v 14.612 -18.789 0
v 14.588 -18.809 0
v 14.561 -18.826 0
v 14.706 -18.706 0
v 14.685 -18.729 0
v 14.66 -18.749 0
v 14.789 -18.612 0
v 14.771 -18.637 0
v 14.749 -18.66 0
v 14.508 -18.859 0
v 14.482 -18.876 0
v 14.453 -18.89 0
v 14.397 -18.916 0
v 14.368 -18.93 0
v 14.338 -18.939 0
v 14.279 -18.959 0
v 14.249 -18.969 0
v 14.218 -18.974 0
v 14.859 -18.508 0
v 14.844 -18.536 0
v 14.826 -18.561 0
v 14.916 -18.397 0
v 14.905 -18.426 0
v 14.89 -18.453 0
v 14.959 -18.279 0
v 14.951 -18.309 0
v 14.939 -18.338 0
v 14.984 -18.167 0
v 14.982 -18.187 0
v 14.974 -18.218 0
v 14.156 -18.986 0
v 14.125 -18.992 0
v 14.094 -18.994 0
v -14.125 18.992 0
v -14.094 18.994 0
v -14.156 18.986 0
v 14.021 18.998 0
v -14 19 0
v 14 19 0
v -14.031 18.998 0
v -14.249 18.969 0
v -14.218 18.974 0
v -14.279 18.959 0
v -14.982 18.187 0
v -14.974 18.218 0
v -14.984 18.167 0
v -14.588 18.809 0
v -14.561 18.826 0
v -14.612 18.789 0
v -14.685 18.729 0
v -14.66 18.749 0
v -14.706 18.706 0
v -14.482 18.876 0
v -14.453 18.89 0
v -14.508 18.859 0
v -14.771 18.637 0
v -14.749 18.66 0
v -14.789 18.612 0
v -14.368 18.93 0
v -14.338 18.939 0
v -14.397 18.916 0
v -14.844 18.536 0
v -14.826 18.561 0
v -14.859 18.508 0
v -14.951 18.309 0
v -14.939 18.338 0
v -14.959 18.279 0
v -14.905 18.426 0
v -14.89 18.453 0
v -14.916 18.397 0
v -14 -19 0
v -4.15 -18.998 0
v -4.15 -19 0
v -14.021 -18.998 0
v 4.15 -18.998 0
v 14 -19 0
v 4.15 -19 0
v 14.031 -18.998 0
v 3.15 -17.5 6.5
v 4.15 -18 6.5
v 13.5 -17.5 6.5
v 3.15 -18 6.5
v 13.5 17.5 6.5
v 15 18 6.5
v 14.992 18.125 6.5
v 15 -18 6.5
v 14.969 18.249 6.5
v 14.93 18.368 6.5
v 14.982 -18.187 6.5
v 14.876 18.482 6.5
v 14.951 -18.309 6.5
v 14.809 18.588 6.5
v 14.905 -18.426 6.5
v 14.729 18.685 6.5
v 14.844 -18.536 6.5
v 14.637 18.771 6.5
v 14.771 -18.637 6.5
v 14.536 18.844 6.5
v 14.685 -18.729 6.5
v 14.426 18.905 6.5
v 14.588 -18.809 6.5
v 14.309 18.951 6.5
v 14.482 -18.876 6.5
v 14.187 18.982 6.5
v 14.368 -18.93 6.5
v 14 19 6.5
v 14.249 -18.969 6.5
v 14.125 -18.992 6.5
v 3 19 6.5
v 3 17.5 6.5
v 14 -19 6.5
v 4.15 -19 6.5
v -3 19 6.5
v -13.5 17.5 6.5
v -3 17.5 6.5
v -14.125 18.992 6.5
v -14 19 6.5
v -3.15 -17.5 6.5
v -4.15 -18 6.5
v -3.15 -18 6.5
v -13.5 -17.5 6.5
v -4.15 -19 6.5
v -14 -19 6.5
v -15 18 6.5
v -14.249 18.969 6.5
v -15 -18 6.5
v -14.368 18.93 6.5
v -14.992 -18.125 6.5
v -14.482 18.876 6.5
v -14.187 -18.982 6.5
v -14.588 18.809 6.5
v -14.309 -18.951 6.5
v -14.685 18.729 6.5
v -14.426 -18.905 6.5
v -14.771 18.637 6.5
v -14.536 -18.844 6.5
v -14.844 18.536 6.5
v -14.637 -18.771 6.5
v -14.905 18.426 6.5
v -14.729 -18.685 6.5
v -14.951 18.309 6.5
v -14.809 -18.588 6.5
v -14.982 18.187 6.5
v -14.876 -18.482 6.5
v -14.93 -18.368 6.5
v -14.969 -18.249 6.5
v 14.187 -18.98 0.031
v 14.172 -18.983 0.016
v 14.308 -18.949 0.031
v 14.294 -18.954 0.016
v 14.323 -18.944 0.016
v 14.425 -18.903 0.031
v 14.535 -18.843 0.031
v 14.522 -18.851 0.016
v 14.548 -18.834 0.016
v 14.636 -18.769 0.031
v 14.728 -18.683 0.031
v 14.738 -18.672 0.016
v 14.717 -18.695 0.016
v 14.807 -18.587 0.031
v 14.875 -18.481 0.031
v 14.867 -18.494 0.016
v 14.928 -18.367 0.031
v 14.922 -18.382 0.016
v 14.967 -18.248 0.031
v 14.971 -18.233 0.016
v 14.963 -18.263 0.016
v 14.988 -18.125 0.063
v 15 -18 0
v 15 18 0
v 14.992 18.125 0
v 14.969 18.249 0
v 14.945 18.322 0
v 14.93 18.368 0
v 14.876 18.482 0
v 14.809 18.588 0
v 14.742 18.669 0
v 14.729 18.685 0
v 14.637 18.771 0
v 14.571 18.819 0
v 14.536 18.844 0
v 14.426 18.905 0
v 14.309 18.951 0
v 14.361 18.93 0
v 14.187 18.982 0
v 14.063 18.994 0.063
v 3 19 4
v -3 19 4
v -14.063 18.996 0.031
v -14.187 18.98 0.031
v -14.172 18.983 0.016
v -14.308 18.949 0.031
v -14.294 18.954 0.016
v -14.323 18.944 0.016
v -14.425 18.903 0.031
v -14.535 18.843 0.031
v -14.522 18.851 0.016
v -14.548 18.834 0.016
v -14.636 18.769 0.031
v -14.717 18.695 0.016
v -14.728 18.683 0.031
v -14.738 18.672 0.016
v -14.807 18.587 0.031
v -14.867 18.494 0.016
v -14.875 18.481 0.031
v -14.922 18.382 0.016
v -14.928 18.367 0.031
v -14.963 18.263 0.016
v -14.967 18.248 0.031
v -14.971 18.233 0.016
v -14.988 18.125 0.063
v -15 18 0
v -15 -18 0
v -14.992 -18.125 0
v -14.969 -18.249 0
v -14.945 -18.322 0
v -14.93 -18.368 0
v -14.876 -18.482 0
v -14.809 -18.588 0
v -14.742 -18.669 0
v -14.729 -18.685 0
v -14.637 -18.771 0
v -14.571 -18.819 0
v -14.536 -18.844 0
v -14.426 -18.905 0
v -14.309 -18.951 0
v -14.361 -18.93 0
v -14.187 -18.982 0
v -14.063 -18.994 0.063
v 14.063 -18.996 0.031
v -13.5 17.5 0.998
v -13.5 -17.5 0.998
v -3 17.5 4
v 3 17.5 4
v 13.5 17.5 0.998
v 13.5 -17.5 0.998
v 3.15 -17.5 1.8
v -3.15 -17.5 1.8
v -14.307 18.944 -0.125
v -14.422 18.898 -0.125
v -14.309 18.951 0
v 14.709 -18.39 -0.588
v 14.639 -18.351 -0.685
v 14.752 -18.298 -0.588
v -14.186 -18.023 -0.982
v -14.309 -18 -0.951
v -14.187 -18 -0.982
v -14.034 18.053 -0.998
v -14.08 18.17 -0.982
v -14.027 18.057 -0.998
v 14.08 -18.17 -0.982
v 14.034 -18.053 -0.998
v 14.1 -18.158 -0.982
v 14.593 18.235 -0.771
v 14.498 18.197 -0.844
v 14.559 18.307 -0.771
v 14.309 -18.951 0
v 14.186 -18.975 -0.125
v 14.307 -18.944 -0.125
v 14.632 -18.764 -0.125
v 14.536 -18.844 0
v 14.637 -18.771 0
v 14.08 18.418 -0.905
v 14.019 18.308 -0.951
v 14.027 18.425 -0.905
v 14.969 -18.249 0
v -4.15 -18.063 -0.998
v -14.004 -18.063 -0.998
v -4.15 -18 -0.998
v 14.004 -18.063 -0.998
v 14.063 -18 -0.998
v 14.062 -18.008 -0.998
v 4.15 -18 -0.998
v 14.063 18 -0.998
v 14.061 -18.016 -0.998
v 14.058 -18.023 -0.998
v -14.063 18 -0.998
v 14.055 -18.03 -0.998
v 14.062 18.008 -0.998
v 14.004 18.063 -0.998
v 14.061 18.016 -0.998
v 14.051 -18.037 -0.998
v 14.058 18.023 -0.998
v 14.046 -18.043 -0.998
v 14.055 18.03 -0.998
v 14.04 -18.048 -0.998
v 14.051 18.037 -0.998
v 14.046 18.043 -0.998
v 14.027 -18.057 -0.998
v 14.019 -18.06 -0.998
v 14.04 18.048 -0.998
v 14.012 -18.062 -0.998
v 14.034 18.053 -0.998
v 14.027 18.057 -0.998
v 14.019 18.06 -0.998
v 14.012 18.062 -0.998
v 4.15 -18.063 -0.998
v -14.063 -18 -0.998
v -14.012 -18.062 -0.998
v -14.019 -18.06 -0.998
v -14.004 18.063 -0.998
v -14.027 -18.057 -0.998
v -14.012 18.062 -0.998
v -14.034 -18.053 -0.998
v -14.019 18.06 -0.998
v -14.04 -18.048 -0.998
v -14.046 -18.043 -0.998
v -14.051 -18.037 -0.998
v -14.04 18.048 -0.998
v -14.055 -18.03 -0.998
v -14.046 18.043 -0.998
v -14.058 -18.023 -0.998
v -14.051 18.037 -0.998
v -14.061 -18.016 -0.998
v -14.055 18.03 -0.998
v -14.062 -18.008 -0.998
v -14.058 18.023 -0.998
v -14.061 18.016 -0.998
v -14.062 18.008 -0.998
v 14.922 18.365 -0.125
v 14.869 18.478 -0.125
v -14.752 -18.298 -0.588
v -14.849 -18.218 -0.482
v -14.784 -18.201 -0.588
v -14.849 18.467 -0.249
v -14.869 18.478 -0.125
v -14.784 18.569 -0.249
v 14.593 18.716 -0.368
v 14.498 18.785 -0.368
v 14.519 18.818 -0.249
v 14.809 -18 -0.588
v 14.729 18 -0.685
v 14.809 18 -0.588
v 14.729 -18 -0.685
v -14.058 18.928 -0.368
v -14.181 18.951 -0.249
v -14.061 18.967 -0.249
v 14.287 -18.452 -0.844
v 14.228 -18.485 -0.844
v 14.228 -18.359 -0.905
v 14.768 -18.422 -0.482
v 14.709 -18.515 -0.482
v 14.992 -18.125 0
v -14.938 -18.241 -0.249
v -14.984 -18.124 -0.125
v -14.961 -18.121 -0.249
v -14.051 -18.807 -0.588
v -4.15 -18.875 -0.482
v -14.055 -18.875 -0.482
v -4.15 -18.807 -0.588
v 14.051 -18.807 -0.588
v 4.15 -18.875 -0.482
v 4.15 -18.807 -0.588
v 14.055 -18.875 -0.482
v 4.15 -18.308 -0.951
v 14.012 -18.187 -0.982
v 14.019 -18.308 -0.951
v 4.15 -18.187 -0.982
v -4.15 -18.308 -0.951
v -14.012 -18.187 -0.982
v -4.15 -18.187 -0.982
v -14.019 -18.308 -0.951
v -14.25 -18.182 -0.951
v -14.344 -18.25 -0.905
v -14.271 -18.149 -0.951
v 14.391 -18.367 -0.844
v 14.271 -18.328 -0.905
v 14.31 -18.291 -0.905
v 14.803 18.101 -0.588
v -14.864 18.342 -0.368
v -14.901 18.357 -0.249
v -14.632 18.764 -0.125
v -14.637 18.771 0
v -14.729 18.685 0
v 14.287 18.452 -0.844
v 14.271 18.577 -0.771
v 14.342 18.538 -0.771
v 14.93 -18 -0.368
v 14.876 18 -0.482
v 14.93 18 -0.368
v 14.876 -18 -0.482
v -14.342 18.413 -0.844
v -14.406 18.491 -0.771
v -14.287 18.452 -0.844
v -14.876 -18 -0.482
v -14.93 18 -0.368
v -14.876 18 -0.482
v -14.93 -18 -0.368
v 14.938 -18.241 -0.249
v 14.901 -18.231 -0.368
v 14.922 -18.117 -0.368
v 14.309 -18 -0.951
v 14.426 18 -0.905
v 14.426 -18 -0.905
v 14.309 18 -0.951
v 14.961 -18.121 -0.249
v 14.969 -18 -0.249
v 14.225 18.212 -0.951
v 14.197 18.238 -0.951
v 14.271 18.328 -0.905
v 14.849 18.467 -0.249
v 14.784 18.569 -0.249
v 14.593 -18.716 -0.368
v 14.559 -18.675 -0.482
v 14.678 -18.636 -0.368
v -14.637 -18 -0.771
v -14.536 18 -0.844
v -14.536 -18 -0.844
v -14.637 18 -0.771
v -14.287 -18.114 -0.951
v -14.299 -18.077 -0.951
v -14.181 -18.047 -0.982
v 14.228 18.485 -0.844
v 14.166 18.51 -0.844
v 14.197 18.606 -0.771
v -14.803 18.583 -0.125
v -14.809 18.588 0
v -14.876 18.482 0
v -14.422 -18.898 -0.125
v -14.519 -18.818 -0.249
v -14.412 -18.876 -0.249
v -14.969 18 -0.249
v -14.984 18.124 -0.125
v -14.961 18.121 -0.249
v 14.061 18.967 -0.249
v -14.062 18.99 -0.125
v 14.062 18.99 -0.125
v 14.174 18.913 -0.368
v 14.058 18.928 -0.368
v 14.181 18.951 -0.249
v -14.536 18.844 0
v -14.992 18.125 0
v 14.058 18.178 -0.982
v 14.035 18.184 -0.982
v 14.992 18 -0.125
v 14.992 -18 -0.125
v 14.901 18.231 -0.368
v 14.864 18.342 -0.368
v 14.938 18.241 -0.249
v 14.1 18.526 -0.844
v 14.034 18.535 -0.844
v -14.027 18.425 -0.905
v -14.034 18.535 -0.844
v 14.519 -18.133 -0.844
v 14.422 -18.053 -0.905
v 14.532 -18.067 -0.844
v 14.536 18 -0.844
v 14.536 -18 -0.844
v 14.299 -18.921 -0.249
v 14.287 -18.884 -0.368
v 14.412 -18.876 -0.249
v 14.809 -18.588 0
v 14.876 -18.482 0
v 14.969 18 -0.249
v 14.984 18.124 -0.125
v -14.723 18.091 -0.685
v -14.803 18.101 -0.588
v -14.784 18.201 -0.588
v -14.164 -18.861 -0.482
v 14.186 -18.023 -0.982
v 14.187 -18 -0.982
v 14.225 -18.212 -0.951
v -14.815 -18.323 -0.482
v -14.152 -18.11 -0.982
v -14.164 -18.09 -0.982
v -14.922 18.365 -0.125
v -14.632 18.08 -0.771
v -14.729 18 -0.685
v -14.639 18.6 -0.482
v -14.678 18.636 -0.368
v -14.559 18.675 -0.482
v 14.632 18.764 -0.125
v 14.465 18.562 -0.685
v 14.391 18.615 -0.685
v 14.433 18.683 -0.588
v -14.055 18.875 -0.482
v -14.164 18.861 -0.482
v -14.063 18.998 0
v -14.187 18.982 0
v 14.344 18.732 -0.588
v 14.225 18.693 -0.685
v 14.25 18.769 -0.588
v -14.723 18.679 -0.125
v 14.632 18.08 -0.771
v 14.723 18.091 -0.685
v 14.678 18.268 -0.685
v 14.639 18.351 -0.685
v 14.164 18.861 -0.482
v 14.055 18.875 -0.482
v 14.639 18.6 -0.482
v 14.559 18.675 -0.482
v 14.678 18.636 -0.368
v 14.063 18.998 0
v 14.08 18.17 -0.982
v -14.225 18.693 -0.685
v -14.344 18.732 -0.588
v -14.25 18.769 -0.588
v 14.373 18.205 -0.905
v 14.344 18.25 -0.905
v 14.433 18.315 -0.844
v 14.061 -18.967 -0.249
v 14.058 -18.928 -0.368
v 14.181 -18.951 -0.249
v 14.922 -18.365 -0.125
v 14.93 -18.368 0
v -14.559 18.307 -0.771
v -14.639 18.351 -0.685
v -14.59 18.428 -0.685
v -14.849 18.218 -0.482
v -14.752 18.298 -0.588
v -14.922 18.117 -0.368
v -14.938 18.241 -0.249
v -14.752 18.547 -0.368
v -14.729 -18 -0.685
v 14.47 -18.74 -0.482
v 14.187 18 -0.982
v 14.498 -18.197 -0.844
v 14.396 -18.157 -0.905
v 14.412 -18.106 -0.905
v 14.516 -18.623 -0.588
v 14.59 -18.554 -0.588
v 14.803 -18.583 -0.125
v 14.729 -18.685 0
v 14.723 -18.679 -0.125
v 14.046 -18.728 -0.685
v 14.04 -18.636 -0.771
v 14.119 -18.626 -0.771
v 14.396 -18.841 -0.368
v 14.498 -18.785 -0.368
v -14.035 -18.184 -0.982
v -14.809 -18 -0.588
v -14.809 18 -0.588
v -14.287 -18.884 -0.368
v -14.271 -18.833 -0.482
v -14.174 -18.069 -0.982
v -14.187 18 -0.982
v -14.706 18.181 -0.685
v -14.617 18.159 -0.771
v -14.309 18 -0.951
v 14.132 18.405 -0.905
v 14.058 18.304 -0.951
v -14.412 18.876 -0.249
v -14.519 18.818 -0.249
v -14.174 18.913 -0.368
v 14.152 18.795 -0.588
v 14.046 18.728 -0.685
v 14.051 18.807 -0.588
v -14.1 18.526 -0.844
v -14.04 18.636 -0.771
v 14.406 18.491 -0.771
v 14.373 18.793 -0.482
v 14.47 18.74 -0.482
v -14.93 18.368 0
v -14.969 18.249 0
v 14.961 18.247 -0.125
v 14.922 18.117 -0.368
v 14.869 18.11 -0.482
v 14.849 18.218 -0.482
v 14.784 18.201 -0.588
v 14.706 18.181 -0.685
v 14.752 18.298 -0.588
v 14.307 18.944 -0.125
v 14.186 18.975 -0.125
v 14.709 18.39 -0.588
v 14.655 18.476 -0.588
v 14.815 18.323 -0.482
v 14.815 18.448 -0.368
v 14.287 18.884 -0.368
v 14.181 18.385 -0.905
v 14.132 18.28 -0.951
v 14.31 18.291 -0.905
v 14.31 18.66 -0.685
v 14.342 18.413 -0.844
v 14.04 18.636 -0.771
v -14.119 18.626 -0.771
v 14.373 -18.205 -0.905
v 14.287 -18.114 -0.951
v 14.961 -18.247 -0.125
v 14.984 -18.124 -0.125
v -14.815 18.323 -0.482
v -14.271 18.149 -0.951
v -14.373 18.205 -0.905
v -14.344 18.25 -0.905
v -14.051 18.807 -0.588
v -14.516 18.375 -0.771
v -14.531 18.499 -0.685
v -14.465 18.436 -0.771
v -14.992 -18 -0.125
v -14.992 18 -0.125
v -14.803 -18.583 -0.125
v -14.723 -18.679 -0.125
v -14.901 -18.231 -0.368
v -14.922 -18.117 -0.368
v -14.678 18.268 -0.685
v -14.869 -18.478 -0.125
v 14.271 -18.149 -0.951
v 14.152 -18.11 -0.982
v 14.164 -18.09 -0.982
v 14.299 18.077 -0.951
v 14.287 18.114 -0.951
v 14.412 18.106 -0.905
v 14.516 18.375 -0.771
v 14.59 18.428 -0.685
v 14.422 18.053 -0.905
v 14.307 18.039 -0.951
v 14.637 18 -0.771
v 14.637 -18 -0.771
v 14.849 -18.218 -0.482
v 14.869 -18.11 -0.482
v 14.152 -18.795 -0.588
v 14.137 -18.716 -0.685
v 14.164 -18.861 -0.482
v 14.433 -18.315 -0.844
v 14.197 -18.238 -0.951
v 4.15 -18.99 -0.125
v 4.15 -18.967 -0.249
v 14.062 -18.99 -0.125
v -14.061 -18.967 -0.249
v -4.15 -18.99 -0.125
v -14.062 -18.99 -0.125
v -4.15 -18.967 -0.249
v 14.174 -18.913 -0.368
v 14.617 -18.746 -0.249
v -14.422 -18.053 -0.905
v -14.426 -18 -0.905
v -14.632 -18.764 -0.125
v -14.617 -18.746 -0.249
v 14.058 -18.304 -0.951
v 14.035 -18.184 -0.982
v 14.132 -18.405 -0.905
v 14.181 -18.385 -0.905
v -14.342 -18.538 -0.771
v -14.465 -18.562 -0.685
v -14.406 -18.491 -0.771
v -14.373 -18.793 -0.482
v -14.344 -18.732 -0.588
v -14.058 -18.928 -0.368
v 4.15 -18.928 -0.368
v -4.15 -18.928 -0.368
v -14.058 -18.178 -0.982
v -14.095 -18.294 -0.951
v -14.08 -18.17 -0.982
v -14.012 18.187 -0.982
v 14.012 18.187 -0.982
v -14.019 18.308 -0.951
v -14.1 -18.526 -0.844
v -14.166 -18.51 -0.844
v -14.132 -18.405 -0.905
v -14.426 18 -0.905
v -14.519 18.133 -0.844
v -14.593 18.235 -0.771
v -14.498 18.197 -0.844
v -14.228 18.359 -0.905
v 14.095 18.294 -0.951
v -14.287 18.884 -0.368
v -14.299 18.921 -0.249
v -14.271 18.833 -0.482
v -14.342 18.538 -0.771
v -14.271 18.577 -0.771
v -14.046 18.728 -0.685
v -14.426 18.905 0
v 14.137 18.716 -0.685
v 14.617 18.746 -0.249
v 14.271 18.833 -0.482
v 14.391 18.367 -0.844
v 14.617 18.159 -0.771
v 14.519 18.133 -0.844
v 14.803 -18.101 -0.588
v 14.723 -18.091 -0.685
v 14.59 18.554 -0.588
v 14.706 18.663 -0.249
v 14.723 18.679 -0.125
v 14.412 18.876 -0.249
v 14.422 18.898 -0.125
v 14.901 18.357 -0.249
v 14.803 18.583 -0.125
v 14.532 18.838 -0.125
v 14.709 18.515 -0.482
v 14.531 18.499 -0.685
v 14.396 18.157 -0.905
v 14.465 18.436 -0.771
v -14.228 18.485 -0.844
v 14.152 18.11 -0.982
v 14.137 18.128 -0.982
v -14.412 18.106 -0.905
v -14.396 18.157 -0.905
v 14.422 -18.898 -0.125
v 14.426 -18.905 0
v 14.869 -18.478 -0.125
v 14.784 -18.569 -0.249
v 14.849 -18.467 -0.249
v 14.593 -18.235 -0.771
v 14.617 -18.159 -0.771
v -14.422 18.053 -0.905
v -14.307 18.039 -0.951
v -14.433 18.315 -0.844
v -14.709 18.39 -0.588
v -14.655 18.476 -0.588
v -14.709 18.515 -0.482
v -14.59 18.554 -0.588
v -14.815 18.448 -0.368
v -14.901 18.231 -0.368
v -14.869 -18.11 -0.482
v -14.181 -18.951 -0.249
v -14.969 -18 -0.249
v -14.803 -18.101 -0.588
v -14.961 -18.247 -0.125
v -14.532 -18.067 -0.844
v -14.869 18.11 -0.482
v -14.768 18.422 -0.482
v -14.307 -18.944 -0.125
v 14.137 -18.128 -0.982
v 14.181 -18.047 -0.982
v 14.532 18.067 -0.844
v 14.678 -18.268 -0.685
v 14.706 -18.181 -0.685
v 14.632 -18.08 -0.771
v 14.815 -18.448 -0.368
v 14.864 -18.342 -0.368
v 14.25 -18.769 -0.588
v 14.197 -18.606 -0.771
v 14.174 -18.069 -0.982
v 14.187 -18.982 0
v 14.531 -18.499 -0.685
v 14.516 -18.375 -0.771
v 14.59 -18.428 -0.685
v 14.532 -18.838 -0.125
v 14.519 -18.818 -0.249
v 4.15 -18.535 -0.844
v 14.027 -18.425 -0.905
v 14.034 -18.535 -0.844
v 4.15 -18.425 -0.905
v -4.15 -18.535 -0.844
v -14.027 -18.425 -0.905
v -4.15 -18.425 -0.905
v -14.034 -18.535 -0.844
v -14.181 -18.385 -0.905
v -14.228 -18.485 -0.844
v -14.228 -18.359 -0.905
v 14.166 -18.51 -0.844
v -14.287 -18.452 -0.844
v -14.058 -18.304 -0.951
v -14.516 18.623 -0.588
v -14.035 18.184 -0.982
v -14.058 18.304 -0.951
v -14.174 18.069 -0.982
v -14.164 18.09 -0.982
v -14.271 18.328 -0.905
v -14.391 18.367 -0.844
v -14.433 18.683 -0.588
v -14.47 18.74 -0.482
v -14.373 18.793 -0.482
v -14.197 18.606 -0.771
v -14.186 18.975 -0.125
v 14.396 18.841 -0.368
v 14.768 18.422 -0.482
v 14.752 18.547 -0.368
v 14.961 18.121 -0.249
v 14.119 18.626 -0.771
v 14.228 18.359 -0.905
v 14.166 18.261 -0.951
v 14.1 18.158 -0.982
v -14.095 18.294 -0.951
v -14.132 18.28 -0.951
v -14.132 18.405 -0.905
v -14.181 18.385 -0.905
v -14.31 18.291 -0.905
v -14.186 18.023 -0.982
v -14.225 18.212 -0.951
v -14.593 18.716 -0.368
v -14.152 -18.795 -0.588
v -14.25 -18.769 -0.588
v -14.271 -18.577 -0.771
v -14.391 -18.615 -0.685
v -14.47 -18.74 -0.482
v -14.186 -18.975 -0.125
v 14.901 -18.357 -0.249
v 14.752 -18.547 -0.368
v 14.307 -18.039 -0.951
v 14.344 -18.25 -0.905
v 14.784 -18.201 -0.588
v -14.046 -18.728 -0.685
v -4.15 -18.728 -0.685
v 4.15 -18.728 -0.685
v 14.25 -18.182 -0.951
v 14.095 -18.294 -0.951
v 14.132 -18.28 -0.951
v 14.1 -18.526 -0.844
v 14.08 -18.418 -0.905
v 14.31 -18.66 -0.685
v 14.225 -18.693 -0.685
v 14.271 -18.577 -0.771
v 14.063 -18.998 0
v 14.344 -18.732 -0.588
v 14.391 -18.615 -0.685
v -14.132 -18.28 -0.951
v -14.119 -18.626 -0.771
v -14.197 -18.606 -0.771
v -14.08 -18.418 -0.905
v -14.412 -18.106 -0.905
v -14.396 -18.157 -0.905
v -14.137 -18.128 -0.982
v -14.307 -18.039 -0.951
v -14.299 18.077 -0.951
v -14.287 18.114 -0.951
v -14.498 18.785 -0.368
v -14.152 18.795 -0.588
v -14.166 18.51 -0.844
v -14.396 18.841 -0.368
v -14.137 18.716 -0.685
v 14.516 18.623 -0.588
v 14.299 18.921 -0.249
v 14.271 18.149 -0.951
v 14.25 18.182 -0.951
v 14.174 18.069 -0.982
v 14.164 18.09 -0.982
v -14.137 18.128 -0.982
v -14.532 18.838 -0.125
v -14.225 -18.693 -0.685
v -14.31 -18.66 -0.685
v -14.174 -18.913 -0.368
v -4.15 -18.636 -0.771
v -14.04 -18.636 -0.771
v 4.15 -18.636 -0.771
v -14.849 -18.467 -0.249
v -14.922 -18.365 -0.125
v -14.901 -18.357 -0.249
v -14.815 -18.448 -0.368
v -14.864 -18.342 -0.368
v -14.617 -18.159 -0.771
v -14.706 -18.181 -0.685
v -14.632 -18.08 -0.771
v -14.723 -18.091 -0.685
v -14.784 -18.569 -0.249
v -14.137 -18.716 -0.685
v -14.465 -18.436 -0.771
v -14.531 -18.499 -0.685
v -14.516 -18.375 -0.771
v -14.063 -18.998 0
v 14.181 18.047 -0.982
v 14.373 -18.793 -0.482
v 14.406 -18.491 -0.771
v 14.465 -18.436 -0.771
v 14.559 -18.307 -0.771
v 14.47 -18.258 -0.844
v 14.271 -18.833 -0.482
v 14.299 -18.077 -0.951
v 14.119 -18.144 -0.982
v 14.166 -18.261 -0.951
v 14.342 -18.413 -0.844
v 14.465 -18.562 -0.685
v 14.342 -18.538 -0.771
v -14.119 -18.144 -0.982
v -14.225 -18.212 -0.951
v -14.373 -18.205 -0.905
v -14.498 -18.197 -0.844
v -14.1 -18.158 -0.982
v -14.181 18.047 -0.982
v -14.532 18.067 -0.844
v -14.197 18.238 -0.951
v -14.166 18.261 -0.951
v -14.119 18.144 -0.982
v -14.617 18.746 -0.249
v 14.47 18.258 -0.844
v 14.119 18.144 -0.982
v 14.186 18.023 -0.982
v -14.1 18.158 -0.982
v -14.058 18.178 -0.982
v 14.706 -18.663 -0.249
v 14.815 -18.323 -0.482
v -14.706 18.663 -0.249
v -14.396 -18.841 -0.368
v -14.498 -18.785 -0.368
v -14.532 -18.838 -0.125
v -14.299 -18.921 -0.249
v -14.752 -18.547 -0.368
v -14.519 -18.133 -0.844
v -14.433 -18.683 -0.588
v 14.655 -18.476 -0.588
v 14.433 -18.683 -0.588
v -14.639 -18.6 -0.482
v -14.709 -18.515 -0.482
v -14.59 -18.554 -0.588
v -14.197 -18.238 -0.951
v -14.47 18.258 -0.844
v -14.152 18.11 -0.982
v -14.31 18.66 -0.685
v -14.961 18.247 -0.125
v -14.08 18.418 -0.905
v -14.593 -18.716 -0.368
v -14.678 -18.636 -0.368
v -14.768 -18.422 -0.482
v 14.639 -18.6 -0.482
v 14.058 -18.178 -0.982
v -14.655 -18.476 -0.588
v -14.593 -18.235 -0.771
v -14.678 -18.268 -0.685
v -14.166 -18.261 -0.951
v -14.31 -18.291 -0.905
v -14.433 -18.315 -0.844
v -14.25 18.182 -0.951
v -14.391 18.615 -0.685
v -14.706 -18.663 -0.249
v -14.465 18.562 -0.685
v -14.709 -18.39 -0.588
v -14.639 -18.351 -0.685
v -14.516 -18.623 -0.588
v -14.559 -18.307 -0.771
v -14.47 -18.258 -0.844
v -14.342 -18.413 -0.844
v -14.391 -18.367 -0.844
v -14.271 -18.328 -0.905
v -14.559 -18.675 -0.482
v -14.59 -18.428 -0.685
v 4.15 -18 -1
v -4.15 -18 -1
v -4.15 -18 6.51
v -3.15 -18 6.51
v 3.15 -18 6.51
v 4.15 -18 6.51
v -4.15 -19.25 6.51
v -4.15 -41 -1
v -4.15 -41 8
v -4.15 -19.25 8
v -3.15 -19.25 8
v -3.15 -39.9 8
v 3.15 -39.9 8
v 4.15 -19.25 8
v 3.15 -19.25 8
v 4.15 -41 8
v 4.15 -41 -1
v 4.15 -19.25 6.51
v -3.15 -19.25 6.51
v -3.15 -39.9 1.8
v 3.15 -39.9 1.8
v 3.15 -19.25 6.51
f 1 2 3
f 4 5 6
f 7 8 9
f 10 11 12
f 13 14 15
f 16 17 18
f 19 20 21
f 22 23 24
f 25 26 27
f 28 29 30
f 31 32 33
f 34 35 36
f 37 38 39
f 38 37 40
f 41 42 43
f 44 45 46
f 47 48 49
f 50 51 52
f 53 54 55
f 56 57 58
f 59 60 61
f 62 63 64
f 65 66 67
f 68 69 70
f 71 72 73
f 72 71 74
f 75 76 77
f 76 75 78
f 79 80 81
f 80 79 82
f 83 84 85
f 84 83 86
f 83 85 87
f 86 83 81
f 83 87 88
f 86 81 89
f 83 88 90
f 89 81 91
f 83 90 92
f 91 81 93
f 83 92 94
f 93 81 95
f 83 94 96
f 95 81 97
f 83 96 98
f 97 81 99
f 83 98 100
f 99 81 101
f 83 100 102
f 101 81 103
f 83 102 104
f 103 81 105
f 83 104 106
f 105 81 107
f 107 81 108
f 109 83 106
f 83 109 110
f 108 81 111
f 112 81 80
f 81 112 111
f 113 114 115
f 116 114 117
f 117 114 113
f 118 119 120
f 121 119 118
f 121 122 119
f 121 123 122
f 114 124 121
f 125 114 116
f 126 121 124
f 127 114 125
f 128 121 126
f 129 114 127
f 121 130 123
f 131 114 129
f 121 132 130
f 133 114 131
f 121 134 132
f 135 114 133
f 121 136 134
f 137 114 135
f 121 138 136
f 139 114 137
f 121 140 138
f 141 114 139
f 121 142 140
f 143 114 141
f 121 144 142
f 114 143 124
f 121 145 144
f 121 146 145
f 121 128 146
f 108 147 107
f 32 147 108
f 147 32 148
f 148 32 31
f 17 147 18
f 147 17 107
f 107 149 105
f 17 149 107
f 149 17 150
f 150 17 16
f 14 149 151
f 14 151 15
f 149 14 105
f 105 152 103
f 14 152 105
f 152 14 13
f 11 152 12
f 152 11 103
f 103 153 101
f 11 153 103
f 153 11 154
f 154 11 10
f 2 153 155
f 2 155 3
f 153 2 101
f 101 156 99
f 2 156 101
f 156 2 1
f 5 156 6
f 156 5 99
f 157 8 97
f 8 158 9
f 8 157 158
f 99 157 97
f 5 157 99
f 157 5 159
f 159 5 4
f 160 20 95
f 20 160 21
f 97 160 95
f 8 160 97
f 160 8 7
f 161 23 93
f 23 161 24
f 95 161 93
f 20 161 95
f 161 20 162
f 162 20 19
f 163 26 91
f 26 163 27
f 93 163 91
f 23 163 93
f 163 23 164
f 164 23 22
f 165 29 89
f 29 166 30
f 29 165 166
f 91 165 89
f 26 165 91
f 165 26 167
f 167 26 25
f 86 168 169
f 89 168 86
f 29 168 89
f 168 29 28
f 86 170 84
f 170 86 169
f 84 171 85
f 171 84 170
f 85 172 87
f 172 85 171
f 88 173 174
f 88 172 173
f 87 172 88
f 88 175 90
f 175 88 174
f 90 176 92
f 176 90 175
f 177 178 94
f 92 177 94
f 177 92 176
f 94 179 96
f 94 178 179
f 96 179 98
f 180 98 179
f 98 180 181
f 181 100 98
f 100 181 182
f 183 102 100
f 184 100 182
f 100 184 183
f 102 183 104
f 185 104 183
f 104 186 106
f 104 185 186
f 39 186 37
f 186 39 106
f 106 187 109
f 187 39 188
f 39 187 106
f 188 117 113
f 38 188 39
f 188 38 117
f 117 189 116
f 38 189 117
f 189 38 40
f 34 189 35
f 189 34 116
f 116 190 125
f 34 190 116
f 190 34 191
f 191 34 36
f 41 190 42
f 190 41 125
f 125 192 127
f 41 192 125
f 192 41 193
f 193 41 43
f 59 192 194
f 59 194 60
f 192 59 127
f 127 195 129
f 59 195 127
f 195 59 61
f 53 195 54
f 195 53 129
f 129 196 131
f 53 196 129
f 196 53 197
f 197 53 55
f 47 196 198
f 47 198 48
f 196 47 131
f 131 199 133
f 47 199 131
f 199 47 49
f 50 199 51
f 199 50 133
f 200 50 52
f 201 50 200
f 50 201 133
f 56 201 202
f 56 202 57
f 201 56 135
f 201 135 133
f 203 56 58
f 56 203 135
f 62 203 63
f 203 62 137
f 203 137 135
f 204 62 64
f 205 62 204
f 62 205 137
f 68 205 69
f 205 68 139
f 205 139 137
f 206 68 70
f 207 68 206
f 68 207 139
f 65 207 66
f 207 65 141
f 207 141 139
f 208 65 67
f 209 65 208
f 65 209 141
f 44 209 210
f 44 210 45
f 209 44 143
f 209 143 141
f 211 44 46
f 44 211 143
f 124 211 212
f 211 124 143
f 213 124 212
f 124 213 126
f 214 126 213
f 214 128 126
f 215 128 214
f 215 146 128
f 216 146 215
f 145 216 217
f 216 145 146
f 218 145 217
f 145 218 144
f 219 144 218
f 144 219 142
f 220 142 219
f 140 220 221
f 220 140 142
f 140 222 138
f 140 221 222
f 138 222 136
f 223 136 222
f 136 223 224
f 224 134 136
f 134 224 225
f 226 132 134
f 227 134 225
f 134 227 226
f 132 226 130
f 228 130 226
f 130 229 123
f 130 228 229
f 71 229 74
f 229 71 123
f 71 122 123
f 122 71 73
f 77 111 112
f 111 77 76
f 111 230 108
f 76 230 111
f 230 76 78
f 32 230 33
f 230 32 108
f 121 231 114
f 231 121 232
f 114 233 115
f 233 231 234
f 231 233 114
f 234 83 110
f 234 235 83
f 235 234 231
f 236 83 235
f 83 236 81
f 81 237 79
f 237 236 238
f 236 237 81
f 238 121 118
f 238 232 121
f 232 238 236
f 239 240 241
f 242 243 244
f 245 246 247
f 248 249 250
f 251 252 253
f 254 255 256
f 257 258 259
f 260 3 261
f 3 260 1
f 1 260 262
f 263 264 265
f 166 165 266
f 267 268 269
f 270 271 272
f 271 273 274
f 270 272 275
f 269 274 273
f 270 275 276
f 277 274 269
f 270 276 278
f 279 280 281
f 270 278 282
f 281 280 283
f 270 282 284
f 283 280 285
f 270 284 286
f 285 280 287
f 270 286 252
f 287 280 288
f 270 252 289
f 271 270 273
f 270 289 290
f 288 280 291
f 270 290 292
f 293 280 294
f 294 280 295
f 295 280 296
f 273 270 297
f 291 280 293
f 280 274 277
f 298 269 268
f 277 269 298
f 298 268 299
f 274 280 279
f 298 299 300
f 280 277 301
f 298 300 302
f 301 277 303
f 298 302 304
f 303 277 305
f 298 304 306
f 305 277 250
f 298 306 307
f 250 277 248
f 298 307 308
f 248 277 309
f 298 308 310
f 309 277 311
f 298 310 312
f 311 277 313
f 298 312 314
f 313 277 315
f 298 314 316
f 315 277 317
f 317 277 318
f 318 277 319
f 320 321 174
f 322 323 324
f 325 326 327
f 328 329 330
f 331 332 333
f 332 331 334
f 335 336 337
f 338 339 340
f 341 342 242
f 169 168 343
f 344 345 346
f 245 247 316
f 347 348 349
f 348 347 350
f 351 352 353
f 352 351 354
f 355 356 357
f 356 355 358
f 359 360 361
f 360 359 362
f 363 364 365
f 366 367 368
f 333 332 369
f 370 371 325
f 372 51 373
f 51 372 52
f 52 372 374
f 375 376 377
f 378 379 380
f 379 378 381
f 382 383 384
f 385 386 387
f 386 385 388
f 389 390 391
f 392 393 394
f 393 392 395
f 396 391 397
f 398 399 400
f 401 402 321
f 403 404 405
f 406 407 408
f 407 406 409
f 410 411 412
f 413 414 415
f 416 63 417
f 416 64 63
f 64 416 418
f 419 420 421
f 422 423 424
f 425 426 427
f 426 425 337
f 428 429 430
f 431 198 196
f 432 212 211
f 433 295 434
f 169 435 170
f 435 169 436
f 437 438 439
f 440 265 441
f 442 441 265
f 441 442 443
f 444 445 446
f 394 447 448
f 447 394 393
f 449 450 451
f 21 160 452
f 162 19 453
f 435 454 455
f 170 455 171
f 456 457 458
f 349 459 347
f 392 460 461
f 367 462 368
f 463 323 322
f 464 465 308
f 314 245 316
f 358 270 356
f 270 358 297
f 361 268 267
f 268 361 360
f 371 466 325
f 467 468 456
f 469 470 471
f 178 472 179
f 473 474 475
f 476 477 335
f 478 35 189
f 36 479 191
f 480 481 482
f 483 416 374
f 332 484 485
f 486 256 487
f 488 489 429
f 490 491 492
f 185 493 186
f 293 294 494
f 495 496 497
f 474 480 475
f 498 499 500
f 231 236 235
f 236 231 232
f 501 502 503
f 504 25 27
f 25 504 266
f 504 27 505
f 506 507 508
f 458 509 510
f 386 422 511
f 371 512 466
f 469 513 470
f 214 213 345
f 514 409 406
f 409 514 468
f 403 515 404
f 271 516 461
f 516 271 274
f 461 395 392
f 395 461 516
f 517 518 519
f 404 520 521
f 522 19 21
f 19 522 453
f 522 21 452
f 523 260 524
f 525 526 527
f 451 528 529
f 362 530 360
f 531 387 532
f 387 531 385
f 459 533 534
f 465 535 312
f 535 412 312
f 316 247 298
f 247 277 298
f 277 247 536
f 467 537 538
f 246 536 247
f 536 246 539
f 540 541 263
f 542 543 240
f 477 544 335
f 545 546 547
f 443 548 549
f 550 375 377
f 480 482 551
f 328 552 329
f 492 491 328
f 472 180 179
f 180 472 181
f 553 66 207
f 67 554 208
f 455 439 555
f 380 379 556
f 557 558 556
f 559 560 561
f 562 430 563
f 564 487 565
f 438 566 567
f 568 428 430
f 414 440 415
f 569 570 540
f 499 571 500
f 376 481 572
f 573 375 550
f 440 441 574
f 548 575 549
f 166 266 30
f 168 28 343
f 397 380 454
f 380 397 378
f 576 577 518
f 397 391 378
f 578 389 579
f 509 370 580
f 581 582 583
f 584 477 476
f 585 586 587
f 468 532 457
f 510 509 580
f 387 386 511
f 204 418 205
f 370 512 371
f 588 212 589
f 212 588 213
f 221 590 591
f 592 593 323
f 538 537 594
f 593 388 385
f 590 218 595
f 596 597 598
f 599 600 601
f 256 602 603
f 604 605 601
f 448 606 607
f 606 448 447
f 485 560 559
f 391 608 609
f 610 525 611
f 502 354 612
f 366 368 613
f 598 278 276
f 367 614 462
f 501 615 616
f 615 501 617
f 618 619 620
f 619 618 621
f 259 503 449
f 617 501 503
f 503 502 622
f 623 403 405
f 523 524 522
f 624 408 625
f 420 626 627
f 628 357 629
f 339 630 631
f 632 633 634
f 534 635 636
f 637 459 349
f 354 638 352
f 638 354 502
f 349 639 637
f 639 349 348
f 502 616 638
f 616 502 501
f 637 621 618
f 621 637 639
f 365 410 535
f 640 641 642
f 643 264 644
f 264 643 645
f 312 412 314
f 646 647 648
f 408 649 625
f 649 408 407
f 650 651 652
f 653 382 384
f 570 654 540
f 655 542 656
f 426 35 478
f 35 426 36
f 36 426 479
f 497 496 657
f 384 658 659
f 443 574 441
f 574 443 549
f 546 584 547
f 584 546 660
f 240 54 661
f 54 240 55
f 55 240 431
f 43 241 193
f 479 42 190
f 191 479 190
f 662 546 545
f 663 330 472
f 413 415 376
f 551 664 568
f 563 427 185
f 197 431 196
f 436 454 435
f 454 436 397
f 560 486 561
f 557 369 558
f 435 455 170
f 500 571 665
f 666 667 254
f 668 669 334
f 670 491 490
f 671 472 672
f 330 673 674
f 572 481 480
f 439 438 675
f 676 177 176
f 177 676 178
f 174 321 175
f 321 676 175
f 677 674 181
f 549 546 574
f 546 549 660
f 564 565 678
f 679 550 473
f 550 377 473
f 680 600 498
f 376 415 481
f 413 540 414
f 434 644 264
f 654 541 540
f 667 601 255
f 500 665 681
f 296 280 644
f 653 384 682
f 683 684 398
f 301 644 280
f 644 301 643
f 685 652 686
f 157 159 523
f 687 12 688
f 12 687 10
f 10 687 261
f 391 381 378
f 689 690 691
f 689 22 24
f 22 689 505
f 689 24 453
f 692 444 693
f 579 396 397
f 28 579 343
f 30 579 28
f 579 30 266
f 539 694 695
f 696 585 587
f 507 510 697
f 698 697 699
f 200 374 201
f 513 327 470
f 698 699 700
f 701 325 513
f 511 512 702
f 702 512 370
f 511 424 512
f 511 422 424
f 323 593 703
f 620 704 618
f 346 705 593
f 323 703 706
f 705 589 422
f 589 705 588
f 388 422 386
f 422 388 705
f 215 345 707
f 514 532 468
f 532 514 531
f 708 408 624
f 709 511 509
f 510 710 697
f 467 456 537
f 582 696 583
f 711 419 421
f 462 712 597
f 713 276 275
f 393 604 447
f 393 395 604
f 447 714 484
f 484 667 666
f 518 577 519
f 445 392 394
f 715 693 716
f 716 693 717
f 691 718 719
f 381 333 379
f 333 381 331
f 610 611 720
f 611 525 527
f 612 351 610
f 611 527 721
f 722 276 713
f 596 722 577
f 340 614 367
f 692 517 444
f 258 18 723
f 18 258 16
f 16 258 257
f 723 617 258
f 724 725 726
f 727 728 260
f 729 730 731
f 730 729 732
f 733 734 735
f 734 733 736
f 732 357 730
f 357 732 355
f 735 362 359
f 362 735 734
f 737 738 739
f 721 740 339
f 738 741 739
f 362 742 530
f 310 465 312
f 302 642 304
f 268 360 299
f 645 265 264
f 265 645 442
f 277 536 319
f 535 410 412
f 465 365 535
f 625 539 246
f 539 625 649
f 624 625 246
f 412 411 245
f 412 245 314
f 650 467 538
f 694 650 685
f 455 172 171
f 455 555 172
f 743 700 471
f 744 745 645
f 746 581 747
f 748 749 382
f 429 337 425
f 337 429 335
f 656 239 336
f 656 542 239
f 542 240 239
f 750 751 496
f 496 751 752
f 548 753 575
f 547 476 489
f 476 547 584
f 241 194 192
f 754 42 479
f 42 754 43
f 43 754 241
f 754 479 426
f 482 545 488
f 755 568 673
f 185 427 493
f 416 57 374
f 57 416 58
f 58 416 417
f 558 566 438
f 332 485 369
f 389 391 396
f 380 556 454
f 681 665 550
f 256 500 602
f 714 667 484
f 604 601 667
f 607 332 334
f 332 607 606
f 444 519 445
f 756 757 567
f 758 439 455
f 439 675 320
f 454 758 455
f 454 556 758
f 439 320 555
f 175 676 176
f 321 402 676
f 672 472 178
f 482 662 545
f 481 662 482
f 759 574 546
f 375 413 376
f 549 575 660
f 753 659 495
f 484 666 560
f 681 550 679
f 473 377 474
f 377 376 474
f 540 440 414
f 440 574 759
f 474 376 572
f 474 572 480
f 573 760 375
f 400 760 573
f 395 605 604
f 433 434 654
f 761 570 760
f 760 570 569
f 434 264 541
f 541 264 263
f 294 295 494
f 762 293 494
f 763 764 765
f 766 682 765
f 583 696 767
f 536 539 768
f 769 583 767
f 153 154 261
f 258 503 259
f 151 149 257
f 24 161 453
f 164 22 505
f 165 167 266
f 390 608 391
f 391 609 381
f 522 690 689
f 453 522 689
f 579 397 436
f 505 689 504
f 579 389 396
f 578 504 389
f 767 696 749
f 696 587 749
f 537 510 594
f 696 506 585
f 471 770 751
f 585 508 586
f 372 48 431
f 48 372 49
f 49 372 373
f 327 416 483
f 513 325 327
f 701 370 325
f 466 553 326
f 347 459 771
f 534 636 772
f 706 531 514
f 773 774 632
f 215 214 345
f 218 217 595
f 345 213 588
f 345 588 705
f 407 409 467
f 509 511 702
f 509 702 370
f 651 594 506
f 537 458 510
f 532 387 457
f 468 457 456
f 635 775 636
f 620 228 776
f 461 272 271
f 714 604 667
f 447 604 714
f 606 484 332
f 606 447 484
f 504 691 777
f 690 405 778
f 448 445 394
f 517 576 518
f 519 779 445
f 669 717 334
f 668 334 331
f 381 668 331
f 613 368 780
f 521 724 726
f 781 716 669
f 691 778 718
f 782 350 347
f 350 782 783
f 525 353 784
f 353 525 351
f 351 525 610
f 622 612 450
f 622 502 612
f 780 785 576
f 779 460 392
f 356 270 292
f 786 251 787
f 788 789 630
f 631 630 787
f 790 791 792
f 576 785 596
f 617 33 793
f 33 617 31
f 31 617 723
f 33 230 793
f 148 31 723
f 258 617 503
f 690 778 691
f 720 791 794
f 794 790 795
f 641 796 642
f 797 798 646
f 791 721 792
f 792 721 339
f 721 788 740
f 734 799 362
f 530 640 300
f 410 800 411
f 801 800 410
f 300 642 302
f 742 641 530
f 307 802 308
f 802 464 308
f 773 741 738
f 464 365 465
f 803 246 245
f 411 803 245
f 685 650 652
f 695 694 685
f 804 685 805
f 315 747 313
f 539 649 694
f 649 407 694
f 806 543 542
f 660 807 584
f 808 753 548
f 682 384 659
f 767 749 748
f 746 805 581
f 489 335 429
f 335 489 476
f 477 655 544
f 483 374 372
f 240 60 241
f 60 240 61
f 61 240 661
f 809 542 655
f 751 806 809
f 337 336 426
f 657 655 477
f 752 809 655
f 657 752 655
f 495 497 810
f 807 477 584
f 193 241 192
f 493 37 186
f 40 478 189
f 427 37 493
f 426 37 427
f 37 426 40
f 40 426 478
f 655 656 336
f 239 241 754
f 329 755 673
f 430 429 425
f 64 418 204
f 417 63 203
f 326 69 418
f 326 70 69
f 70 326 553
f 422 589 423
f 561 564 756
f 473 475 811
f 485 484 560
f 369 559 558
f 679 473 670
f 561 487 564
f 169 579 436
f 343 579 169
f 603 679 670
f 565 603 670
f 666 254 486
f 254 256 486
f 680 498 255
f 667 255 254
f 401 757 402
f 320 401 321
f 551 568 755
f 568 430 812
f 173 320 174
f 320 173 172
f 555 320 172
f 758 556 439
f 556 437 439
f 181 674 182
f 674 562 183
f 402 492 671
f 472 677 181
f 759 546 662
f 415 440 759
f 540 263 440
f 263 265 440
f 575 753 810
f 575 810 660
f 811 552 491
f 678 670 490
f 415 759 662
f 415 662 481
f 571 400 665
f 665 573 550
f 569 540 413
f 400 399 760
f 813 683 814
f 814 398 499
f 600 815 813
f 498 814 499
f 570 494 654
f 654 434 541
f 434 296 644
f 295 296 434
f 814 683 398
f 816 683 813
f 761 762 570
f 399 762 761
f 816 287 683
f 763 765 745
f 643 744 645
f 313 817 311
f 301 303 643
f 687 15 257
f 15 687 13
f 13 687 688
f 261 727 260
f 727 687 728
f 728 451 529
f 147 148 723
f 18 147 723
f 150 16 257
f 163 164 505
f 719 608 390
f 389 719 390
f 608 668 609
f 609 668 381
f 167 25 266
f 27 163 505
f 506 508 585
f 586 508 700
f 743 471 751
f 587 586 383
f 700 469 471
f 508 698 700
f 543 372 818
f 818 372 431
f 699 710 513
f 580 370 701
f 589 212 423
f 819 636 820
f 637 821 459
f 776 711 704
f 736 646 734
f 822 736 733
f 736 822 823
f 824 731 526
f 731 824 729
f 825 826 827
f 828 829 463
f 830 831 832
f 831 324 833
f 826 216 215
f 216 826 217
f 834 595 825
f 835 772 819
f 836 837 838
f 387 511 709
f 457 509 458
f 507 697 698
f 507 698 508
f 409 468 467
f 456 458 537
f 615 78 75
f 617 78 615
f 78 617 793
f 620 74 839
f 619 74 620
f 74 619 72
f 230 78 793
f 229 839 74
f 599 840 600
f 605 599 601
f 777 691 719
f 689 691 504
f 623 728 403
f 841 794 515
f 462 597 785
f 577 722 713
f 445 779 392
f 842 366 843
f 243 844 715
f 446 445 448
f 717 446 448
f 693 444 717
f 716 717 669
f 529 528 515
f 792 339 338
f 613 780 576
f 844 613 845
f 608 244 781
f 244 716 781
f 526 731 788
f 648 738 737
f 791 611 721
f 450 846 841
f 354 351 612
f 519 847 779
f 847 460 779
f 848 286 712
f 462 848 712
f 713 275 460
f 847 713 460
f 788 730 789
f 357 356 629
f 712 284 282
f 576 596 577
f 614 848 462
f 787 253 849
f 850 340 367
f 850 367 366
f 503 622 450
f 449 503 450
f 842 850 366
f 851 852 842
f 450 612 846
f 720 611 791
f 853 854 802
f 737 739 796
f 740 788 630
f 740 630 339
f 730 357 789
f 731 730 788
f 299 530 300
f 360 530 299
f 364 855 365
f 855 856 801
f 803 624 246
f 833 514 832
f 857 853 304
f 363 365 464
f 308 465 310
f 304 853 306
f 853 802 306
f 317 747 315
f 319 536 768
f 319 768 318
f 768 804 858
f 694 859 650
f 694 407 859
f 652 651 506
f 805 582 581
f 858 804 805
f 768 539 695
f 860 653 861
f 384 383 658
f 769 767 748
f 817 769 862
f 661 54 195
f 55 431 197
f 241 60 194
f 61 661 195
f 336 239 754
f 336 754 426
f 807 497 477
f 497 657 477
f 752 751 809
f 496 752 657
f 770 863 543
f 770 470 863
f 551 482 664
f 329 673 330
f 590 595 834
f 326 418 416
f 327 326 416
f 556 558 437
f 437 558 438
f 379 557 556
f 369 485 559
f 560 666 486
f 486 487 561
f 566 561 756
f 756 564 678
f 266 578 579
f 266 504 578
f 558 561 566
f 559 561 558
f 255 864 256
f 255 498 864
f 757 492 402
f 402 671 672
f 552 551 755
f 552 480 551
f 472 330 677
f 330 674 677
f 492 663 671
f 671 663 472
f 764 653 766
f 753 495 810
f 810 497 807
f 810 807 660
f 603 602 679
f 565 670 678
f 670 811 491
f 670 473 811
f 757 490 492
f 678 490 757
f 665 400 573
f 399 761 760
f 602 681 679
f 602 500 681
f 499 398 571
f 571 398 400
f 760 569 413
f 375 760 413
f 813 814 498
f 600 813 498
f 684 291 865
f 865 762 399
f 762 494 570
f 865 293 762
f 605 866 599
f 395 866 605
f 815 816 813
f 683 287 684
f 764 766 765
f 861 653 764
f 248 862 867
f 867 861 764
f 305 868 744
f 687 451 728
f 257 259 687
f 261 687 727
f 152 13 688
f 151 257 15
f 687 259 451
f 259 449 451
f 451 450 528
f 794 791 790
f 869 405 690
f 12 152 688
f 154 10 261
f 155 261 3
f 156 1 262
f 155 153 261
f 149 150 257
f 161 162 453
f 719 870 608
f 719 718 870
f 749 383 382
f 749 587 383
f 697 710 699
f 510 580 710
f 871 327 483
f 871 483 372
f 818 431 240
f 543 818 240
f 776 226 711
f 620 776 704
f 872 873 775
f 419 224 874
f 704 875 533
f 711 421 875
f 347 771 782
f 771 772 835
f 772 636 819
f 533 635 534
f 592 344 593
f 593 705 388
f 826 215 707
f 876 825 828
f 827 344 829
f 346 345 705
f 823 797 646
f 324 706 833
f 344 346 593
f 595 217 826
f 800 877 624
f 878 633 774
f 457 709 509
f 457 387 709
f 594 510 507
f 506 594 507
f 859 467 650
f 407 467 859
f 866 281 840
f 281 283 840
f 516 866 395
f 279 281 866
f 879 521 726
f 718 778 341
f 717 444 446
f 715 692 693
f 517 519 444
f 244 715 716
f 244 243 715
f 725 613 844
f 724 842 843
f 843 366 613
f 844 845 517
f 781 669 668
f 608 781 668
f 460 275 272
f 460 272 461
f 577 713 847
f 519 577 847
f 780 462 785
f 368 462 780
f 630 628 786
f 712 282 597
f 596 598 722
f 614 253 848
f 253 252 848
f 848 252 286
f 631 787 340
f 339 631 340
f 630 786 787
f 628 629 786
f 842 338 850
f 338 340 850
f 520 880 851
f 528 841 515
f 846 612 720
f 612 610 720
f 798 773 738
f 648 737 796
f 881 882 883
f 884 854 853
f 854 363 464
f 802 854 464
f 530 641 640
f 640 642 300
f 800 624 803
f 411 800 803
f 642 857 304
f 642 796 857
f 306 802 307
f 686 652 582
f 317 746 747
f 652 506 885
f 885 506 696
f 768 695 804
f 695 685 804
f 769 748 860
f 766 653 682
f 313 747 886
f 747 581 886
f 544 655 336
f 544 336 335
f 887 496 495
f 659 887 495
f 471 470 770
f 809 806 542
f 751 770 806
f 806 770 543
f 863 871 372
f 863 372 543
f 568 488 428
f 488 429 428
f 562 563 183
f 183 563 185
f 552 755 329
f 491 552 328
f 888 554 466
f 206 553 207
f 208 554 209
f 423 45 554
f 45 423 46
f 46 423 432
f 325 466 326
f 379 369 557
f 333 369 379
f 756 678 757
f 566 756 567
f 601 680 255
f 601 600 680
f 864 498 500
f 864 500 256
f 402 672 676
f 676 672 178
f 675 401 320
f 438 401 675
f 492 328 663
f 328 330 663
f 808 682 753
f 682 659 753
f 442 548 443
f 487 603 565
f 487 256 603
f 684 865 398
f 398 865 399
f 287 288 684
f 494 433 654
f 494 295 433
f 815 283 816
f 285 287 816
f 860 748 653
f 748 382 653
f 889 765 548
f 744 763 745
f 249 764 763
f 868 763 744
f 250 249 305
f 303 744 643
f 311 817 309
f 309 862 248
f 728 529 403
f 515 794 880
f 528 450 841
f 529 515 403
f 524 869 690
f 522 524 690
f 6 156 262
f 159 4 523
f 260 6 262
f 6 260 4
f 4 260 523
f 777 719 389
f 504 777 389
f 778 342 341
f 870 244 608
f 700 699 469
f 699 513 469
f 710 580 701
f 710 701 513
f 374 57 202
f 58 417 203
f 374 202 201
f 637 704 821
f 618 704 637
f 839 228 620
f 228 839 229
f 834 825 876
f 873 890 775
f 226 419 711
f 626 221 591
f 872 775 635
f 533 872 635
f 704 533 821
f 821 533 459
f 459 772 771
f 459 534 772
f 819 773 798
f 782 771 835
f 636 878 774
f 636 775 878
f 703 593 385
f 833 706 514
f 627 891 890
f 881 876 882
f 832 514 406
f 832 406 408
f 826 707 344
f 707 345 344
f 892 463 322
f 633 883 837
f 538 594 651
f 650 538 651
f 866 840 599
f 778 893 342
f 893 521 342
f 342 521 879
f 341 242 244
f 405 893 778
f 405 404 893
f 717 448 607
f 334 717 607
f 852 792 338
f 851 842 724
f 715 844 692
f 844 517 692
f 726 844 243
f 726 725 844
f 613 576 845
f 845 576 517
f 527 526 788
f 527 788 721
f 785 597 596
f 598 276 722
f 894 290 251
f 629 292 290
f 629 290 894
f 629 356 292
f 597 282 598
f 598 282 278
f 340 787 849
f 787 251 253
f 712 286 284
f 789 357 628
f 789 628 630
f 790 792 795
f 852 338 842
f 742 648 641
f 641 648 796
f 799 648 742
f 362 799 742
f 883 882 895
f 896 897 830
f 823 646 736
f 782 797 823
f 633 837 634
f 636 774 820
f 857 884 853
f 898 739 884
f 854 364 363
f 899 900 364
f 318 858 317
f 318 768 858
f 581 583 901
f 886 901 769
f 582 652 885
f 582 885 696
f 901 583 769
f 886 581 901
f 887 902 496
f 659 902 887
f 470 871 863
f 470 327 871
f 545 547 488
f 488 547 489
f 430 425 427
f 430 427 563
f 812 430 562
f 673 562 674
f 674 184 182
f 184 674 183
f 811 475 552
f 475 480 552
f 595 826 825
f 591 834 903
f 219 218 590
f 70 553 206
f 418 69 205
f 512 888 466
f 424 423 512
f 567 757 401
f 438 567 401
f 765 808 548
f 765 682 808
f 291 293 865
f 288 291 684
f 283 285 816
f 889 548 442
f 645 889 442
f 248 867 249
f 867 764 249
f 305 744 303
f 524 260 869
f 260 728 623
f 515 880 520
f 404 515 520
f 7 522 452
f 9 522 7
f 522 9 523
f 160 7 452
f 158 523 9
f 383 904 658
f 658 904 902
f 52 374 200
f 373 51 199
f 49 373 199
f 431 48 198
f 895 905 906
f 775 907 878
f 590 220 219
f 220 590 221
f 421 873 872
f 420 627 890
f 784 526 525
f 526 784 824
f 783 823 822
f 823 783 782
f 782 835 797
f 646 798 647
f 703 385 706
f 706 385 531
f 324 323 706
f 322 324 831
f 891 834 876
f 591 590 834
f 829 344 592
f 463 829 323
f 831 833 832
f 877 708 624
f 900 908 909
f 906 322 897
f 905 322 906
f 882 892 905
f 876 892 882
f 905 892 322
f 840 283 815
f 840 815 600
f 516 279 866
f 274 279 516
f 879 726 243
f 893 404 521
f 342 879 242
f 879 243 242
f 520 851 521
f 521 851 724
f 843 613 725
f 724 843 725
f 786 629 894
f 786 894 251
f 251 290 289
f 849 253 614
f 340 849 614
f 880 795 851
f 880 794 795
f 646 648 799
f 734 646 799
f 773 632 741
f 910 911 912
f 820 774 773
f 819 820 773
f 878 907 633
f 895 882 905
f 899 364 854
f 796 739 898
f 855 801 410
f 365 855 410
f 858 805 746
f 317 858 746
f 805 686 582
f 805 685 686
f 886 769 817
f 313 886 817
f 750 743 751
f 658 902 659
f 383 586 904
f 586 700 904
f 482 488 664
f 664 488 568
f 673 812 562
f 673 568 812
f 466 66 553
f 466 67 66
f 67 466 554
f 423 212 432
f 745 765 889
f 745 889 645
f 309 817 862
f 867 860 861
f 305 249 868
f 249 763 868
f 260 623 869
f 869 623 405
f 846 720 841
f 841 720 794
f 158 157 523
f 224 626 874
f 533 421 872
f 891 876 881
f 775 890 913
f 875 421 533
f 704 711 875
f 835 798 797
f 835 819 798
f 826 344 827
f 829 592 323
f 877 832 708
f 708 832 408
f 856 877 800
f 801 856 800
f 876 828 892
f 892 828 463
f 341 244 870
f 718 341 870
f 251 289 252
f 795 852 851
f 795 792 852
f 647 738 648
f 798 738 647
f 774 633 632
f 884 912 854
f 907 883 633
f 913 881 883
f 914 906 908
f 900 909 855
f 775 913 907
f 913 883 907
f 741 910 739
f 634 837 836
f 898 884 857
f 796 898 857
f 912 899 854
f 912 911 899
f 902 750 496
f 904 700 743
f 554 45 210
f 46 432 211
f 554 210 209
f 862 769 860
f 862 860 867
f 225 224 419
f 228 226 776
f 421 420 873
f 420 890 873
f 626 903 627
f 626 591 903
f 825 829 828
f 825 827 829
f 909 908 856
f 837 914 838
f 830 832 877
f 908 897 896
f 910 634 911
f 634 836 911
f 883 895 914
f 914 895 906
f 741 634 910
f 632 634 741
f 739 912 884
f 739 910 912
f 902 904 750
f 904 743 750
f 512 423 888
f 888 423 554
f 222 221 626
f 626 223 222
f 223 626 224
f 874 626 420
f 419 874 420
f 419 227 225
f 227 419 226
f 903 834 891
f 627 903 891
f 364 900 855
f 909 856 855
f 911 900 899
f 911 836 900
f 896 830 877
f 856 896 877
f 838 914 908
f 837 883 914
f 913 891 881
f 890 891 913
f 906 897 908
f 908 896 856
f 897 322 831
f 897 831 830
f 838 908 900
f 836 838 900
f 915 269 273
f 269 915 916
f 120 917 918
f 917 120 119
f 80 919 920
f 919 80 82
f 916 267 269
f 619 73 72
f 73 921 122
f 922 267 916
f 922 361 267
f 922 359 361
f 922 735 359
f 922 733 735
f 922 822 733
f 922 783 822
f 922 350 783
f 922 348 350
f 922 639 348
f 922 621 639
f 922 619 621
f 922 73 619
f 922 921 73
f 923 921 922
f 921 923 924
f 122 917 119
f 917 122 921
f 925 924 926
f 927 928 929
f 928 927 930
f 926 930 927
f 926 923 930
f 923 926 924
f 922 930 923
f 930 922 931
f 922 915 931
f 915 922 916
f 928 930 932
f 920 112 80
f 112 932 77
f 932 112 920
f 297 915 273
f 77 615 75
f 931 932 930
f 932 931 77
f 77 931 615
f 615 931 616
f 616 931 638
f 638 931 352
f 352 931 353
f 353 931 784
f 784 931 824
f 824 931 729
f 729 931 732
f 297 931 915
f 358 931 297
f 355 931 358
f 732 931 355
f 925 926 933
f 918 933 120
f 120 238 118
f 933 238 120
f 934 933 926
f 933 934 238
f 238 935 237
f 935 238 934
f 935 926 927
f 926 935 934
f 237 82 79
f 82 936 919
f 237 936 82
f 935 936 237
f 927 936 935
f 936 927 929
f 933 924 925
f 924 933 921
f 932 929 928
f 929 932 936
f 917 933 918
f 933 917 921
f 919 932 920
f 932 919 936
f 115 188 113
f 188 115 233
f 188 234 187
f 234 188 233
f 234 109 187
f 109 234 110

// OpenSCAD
$fn=50;
BOX_W = 28; // Box Width
BOX_L = 36;// Box Length
BOX_H = 6.5; // Box Height
CORNER_RADIUS = 1.0; // Radius of corners
WALL = 1.0;// Wall Thickness

MIC_OUTSIDE_WIDTH=8.3;
MIC_OUTSIDE_HEIGHT=9.0;
MIC_INSIDE_WIDTH=6.3;
MIC_LENGTH=23;

CON_OUTSIDE=5;
CON_INSIDE=4;
CON_LENGTH=3;

difference() {
  union() {
  linear_extrude( BOX_H )
    difference(){
      offset(r=CORNER_RADIUS) square( [BOX_W, BOX_L], center=true );
      offset(r= CORNER_RADIUS - WALL) square([BOX_W-WALL, BOX_L-WALL], center=true );
    };

    coordinates = [ [0,0],[0,BOX_L],[BOX_W,BOX_L],[BOX_W,0] ];

    translate ( [-BOX_W/2, -BOX_L/2] )
      hull()
      for (i = coordinates)
        translate(i) sphere(CORNER_RADIUS);

    // outside shape
    translate([0,-18.0,BOX_H-3])
    rotate([90,0,0])
    #linear_extrude(MIC_LENGTH) square([MIC_OUTSIDE_WIDTH,MIC_OUTSIDE_HEIGHT], center=true);

  }

  translate([0,-13.8,BOX_H-0.2]) // inside
  rotate([90,0,0])
  linear_extrude(MIC_LENGTH+3.1) square([MIC_INSIDE_WIDTH,MIC_OUTSIDE_HEIGHT], center=true);  

  // mic lid clearance
  translate([0,-17.25,BOX_H+1.11])
  rotate([90,0,0])
  linear_extrude(2.0) square([9,2.2], center=true);
  
  translate([0,19.3,BOX_H-1])
  rotate([90,0,0])
  //cylinder(h=CON_LENGTH+1,r=CON_INSIDE/2);
  linear_extrude(2.0) square([6,3], center=true);
}
